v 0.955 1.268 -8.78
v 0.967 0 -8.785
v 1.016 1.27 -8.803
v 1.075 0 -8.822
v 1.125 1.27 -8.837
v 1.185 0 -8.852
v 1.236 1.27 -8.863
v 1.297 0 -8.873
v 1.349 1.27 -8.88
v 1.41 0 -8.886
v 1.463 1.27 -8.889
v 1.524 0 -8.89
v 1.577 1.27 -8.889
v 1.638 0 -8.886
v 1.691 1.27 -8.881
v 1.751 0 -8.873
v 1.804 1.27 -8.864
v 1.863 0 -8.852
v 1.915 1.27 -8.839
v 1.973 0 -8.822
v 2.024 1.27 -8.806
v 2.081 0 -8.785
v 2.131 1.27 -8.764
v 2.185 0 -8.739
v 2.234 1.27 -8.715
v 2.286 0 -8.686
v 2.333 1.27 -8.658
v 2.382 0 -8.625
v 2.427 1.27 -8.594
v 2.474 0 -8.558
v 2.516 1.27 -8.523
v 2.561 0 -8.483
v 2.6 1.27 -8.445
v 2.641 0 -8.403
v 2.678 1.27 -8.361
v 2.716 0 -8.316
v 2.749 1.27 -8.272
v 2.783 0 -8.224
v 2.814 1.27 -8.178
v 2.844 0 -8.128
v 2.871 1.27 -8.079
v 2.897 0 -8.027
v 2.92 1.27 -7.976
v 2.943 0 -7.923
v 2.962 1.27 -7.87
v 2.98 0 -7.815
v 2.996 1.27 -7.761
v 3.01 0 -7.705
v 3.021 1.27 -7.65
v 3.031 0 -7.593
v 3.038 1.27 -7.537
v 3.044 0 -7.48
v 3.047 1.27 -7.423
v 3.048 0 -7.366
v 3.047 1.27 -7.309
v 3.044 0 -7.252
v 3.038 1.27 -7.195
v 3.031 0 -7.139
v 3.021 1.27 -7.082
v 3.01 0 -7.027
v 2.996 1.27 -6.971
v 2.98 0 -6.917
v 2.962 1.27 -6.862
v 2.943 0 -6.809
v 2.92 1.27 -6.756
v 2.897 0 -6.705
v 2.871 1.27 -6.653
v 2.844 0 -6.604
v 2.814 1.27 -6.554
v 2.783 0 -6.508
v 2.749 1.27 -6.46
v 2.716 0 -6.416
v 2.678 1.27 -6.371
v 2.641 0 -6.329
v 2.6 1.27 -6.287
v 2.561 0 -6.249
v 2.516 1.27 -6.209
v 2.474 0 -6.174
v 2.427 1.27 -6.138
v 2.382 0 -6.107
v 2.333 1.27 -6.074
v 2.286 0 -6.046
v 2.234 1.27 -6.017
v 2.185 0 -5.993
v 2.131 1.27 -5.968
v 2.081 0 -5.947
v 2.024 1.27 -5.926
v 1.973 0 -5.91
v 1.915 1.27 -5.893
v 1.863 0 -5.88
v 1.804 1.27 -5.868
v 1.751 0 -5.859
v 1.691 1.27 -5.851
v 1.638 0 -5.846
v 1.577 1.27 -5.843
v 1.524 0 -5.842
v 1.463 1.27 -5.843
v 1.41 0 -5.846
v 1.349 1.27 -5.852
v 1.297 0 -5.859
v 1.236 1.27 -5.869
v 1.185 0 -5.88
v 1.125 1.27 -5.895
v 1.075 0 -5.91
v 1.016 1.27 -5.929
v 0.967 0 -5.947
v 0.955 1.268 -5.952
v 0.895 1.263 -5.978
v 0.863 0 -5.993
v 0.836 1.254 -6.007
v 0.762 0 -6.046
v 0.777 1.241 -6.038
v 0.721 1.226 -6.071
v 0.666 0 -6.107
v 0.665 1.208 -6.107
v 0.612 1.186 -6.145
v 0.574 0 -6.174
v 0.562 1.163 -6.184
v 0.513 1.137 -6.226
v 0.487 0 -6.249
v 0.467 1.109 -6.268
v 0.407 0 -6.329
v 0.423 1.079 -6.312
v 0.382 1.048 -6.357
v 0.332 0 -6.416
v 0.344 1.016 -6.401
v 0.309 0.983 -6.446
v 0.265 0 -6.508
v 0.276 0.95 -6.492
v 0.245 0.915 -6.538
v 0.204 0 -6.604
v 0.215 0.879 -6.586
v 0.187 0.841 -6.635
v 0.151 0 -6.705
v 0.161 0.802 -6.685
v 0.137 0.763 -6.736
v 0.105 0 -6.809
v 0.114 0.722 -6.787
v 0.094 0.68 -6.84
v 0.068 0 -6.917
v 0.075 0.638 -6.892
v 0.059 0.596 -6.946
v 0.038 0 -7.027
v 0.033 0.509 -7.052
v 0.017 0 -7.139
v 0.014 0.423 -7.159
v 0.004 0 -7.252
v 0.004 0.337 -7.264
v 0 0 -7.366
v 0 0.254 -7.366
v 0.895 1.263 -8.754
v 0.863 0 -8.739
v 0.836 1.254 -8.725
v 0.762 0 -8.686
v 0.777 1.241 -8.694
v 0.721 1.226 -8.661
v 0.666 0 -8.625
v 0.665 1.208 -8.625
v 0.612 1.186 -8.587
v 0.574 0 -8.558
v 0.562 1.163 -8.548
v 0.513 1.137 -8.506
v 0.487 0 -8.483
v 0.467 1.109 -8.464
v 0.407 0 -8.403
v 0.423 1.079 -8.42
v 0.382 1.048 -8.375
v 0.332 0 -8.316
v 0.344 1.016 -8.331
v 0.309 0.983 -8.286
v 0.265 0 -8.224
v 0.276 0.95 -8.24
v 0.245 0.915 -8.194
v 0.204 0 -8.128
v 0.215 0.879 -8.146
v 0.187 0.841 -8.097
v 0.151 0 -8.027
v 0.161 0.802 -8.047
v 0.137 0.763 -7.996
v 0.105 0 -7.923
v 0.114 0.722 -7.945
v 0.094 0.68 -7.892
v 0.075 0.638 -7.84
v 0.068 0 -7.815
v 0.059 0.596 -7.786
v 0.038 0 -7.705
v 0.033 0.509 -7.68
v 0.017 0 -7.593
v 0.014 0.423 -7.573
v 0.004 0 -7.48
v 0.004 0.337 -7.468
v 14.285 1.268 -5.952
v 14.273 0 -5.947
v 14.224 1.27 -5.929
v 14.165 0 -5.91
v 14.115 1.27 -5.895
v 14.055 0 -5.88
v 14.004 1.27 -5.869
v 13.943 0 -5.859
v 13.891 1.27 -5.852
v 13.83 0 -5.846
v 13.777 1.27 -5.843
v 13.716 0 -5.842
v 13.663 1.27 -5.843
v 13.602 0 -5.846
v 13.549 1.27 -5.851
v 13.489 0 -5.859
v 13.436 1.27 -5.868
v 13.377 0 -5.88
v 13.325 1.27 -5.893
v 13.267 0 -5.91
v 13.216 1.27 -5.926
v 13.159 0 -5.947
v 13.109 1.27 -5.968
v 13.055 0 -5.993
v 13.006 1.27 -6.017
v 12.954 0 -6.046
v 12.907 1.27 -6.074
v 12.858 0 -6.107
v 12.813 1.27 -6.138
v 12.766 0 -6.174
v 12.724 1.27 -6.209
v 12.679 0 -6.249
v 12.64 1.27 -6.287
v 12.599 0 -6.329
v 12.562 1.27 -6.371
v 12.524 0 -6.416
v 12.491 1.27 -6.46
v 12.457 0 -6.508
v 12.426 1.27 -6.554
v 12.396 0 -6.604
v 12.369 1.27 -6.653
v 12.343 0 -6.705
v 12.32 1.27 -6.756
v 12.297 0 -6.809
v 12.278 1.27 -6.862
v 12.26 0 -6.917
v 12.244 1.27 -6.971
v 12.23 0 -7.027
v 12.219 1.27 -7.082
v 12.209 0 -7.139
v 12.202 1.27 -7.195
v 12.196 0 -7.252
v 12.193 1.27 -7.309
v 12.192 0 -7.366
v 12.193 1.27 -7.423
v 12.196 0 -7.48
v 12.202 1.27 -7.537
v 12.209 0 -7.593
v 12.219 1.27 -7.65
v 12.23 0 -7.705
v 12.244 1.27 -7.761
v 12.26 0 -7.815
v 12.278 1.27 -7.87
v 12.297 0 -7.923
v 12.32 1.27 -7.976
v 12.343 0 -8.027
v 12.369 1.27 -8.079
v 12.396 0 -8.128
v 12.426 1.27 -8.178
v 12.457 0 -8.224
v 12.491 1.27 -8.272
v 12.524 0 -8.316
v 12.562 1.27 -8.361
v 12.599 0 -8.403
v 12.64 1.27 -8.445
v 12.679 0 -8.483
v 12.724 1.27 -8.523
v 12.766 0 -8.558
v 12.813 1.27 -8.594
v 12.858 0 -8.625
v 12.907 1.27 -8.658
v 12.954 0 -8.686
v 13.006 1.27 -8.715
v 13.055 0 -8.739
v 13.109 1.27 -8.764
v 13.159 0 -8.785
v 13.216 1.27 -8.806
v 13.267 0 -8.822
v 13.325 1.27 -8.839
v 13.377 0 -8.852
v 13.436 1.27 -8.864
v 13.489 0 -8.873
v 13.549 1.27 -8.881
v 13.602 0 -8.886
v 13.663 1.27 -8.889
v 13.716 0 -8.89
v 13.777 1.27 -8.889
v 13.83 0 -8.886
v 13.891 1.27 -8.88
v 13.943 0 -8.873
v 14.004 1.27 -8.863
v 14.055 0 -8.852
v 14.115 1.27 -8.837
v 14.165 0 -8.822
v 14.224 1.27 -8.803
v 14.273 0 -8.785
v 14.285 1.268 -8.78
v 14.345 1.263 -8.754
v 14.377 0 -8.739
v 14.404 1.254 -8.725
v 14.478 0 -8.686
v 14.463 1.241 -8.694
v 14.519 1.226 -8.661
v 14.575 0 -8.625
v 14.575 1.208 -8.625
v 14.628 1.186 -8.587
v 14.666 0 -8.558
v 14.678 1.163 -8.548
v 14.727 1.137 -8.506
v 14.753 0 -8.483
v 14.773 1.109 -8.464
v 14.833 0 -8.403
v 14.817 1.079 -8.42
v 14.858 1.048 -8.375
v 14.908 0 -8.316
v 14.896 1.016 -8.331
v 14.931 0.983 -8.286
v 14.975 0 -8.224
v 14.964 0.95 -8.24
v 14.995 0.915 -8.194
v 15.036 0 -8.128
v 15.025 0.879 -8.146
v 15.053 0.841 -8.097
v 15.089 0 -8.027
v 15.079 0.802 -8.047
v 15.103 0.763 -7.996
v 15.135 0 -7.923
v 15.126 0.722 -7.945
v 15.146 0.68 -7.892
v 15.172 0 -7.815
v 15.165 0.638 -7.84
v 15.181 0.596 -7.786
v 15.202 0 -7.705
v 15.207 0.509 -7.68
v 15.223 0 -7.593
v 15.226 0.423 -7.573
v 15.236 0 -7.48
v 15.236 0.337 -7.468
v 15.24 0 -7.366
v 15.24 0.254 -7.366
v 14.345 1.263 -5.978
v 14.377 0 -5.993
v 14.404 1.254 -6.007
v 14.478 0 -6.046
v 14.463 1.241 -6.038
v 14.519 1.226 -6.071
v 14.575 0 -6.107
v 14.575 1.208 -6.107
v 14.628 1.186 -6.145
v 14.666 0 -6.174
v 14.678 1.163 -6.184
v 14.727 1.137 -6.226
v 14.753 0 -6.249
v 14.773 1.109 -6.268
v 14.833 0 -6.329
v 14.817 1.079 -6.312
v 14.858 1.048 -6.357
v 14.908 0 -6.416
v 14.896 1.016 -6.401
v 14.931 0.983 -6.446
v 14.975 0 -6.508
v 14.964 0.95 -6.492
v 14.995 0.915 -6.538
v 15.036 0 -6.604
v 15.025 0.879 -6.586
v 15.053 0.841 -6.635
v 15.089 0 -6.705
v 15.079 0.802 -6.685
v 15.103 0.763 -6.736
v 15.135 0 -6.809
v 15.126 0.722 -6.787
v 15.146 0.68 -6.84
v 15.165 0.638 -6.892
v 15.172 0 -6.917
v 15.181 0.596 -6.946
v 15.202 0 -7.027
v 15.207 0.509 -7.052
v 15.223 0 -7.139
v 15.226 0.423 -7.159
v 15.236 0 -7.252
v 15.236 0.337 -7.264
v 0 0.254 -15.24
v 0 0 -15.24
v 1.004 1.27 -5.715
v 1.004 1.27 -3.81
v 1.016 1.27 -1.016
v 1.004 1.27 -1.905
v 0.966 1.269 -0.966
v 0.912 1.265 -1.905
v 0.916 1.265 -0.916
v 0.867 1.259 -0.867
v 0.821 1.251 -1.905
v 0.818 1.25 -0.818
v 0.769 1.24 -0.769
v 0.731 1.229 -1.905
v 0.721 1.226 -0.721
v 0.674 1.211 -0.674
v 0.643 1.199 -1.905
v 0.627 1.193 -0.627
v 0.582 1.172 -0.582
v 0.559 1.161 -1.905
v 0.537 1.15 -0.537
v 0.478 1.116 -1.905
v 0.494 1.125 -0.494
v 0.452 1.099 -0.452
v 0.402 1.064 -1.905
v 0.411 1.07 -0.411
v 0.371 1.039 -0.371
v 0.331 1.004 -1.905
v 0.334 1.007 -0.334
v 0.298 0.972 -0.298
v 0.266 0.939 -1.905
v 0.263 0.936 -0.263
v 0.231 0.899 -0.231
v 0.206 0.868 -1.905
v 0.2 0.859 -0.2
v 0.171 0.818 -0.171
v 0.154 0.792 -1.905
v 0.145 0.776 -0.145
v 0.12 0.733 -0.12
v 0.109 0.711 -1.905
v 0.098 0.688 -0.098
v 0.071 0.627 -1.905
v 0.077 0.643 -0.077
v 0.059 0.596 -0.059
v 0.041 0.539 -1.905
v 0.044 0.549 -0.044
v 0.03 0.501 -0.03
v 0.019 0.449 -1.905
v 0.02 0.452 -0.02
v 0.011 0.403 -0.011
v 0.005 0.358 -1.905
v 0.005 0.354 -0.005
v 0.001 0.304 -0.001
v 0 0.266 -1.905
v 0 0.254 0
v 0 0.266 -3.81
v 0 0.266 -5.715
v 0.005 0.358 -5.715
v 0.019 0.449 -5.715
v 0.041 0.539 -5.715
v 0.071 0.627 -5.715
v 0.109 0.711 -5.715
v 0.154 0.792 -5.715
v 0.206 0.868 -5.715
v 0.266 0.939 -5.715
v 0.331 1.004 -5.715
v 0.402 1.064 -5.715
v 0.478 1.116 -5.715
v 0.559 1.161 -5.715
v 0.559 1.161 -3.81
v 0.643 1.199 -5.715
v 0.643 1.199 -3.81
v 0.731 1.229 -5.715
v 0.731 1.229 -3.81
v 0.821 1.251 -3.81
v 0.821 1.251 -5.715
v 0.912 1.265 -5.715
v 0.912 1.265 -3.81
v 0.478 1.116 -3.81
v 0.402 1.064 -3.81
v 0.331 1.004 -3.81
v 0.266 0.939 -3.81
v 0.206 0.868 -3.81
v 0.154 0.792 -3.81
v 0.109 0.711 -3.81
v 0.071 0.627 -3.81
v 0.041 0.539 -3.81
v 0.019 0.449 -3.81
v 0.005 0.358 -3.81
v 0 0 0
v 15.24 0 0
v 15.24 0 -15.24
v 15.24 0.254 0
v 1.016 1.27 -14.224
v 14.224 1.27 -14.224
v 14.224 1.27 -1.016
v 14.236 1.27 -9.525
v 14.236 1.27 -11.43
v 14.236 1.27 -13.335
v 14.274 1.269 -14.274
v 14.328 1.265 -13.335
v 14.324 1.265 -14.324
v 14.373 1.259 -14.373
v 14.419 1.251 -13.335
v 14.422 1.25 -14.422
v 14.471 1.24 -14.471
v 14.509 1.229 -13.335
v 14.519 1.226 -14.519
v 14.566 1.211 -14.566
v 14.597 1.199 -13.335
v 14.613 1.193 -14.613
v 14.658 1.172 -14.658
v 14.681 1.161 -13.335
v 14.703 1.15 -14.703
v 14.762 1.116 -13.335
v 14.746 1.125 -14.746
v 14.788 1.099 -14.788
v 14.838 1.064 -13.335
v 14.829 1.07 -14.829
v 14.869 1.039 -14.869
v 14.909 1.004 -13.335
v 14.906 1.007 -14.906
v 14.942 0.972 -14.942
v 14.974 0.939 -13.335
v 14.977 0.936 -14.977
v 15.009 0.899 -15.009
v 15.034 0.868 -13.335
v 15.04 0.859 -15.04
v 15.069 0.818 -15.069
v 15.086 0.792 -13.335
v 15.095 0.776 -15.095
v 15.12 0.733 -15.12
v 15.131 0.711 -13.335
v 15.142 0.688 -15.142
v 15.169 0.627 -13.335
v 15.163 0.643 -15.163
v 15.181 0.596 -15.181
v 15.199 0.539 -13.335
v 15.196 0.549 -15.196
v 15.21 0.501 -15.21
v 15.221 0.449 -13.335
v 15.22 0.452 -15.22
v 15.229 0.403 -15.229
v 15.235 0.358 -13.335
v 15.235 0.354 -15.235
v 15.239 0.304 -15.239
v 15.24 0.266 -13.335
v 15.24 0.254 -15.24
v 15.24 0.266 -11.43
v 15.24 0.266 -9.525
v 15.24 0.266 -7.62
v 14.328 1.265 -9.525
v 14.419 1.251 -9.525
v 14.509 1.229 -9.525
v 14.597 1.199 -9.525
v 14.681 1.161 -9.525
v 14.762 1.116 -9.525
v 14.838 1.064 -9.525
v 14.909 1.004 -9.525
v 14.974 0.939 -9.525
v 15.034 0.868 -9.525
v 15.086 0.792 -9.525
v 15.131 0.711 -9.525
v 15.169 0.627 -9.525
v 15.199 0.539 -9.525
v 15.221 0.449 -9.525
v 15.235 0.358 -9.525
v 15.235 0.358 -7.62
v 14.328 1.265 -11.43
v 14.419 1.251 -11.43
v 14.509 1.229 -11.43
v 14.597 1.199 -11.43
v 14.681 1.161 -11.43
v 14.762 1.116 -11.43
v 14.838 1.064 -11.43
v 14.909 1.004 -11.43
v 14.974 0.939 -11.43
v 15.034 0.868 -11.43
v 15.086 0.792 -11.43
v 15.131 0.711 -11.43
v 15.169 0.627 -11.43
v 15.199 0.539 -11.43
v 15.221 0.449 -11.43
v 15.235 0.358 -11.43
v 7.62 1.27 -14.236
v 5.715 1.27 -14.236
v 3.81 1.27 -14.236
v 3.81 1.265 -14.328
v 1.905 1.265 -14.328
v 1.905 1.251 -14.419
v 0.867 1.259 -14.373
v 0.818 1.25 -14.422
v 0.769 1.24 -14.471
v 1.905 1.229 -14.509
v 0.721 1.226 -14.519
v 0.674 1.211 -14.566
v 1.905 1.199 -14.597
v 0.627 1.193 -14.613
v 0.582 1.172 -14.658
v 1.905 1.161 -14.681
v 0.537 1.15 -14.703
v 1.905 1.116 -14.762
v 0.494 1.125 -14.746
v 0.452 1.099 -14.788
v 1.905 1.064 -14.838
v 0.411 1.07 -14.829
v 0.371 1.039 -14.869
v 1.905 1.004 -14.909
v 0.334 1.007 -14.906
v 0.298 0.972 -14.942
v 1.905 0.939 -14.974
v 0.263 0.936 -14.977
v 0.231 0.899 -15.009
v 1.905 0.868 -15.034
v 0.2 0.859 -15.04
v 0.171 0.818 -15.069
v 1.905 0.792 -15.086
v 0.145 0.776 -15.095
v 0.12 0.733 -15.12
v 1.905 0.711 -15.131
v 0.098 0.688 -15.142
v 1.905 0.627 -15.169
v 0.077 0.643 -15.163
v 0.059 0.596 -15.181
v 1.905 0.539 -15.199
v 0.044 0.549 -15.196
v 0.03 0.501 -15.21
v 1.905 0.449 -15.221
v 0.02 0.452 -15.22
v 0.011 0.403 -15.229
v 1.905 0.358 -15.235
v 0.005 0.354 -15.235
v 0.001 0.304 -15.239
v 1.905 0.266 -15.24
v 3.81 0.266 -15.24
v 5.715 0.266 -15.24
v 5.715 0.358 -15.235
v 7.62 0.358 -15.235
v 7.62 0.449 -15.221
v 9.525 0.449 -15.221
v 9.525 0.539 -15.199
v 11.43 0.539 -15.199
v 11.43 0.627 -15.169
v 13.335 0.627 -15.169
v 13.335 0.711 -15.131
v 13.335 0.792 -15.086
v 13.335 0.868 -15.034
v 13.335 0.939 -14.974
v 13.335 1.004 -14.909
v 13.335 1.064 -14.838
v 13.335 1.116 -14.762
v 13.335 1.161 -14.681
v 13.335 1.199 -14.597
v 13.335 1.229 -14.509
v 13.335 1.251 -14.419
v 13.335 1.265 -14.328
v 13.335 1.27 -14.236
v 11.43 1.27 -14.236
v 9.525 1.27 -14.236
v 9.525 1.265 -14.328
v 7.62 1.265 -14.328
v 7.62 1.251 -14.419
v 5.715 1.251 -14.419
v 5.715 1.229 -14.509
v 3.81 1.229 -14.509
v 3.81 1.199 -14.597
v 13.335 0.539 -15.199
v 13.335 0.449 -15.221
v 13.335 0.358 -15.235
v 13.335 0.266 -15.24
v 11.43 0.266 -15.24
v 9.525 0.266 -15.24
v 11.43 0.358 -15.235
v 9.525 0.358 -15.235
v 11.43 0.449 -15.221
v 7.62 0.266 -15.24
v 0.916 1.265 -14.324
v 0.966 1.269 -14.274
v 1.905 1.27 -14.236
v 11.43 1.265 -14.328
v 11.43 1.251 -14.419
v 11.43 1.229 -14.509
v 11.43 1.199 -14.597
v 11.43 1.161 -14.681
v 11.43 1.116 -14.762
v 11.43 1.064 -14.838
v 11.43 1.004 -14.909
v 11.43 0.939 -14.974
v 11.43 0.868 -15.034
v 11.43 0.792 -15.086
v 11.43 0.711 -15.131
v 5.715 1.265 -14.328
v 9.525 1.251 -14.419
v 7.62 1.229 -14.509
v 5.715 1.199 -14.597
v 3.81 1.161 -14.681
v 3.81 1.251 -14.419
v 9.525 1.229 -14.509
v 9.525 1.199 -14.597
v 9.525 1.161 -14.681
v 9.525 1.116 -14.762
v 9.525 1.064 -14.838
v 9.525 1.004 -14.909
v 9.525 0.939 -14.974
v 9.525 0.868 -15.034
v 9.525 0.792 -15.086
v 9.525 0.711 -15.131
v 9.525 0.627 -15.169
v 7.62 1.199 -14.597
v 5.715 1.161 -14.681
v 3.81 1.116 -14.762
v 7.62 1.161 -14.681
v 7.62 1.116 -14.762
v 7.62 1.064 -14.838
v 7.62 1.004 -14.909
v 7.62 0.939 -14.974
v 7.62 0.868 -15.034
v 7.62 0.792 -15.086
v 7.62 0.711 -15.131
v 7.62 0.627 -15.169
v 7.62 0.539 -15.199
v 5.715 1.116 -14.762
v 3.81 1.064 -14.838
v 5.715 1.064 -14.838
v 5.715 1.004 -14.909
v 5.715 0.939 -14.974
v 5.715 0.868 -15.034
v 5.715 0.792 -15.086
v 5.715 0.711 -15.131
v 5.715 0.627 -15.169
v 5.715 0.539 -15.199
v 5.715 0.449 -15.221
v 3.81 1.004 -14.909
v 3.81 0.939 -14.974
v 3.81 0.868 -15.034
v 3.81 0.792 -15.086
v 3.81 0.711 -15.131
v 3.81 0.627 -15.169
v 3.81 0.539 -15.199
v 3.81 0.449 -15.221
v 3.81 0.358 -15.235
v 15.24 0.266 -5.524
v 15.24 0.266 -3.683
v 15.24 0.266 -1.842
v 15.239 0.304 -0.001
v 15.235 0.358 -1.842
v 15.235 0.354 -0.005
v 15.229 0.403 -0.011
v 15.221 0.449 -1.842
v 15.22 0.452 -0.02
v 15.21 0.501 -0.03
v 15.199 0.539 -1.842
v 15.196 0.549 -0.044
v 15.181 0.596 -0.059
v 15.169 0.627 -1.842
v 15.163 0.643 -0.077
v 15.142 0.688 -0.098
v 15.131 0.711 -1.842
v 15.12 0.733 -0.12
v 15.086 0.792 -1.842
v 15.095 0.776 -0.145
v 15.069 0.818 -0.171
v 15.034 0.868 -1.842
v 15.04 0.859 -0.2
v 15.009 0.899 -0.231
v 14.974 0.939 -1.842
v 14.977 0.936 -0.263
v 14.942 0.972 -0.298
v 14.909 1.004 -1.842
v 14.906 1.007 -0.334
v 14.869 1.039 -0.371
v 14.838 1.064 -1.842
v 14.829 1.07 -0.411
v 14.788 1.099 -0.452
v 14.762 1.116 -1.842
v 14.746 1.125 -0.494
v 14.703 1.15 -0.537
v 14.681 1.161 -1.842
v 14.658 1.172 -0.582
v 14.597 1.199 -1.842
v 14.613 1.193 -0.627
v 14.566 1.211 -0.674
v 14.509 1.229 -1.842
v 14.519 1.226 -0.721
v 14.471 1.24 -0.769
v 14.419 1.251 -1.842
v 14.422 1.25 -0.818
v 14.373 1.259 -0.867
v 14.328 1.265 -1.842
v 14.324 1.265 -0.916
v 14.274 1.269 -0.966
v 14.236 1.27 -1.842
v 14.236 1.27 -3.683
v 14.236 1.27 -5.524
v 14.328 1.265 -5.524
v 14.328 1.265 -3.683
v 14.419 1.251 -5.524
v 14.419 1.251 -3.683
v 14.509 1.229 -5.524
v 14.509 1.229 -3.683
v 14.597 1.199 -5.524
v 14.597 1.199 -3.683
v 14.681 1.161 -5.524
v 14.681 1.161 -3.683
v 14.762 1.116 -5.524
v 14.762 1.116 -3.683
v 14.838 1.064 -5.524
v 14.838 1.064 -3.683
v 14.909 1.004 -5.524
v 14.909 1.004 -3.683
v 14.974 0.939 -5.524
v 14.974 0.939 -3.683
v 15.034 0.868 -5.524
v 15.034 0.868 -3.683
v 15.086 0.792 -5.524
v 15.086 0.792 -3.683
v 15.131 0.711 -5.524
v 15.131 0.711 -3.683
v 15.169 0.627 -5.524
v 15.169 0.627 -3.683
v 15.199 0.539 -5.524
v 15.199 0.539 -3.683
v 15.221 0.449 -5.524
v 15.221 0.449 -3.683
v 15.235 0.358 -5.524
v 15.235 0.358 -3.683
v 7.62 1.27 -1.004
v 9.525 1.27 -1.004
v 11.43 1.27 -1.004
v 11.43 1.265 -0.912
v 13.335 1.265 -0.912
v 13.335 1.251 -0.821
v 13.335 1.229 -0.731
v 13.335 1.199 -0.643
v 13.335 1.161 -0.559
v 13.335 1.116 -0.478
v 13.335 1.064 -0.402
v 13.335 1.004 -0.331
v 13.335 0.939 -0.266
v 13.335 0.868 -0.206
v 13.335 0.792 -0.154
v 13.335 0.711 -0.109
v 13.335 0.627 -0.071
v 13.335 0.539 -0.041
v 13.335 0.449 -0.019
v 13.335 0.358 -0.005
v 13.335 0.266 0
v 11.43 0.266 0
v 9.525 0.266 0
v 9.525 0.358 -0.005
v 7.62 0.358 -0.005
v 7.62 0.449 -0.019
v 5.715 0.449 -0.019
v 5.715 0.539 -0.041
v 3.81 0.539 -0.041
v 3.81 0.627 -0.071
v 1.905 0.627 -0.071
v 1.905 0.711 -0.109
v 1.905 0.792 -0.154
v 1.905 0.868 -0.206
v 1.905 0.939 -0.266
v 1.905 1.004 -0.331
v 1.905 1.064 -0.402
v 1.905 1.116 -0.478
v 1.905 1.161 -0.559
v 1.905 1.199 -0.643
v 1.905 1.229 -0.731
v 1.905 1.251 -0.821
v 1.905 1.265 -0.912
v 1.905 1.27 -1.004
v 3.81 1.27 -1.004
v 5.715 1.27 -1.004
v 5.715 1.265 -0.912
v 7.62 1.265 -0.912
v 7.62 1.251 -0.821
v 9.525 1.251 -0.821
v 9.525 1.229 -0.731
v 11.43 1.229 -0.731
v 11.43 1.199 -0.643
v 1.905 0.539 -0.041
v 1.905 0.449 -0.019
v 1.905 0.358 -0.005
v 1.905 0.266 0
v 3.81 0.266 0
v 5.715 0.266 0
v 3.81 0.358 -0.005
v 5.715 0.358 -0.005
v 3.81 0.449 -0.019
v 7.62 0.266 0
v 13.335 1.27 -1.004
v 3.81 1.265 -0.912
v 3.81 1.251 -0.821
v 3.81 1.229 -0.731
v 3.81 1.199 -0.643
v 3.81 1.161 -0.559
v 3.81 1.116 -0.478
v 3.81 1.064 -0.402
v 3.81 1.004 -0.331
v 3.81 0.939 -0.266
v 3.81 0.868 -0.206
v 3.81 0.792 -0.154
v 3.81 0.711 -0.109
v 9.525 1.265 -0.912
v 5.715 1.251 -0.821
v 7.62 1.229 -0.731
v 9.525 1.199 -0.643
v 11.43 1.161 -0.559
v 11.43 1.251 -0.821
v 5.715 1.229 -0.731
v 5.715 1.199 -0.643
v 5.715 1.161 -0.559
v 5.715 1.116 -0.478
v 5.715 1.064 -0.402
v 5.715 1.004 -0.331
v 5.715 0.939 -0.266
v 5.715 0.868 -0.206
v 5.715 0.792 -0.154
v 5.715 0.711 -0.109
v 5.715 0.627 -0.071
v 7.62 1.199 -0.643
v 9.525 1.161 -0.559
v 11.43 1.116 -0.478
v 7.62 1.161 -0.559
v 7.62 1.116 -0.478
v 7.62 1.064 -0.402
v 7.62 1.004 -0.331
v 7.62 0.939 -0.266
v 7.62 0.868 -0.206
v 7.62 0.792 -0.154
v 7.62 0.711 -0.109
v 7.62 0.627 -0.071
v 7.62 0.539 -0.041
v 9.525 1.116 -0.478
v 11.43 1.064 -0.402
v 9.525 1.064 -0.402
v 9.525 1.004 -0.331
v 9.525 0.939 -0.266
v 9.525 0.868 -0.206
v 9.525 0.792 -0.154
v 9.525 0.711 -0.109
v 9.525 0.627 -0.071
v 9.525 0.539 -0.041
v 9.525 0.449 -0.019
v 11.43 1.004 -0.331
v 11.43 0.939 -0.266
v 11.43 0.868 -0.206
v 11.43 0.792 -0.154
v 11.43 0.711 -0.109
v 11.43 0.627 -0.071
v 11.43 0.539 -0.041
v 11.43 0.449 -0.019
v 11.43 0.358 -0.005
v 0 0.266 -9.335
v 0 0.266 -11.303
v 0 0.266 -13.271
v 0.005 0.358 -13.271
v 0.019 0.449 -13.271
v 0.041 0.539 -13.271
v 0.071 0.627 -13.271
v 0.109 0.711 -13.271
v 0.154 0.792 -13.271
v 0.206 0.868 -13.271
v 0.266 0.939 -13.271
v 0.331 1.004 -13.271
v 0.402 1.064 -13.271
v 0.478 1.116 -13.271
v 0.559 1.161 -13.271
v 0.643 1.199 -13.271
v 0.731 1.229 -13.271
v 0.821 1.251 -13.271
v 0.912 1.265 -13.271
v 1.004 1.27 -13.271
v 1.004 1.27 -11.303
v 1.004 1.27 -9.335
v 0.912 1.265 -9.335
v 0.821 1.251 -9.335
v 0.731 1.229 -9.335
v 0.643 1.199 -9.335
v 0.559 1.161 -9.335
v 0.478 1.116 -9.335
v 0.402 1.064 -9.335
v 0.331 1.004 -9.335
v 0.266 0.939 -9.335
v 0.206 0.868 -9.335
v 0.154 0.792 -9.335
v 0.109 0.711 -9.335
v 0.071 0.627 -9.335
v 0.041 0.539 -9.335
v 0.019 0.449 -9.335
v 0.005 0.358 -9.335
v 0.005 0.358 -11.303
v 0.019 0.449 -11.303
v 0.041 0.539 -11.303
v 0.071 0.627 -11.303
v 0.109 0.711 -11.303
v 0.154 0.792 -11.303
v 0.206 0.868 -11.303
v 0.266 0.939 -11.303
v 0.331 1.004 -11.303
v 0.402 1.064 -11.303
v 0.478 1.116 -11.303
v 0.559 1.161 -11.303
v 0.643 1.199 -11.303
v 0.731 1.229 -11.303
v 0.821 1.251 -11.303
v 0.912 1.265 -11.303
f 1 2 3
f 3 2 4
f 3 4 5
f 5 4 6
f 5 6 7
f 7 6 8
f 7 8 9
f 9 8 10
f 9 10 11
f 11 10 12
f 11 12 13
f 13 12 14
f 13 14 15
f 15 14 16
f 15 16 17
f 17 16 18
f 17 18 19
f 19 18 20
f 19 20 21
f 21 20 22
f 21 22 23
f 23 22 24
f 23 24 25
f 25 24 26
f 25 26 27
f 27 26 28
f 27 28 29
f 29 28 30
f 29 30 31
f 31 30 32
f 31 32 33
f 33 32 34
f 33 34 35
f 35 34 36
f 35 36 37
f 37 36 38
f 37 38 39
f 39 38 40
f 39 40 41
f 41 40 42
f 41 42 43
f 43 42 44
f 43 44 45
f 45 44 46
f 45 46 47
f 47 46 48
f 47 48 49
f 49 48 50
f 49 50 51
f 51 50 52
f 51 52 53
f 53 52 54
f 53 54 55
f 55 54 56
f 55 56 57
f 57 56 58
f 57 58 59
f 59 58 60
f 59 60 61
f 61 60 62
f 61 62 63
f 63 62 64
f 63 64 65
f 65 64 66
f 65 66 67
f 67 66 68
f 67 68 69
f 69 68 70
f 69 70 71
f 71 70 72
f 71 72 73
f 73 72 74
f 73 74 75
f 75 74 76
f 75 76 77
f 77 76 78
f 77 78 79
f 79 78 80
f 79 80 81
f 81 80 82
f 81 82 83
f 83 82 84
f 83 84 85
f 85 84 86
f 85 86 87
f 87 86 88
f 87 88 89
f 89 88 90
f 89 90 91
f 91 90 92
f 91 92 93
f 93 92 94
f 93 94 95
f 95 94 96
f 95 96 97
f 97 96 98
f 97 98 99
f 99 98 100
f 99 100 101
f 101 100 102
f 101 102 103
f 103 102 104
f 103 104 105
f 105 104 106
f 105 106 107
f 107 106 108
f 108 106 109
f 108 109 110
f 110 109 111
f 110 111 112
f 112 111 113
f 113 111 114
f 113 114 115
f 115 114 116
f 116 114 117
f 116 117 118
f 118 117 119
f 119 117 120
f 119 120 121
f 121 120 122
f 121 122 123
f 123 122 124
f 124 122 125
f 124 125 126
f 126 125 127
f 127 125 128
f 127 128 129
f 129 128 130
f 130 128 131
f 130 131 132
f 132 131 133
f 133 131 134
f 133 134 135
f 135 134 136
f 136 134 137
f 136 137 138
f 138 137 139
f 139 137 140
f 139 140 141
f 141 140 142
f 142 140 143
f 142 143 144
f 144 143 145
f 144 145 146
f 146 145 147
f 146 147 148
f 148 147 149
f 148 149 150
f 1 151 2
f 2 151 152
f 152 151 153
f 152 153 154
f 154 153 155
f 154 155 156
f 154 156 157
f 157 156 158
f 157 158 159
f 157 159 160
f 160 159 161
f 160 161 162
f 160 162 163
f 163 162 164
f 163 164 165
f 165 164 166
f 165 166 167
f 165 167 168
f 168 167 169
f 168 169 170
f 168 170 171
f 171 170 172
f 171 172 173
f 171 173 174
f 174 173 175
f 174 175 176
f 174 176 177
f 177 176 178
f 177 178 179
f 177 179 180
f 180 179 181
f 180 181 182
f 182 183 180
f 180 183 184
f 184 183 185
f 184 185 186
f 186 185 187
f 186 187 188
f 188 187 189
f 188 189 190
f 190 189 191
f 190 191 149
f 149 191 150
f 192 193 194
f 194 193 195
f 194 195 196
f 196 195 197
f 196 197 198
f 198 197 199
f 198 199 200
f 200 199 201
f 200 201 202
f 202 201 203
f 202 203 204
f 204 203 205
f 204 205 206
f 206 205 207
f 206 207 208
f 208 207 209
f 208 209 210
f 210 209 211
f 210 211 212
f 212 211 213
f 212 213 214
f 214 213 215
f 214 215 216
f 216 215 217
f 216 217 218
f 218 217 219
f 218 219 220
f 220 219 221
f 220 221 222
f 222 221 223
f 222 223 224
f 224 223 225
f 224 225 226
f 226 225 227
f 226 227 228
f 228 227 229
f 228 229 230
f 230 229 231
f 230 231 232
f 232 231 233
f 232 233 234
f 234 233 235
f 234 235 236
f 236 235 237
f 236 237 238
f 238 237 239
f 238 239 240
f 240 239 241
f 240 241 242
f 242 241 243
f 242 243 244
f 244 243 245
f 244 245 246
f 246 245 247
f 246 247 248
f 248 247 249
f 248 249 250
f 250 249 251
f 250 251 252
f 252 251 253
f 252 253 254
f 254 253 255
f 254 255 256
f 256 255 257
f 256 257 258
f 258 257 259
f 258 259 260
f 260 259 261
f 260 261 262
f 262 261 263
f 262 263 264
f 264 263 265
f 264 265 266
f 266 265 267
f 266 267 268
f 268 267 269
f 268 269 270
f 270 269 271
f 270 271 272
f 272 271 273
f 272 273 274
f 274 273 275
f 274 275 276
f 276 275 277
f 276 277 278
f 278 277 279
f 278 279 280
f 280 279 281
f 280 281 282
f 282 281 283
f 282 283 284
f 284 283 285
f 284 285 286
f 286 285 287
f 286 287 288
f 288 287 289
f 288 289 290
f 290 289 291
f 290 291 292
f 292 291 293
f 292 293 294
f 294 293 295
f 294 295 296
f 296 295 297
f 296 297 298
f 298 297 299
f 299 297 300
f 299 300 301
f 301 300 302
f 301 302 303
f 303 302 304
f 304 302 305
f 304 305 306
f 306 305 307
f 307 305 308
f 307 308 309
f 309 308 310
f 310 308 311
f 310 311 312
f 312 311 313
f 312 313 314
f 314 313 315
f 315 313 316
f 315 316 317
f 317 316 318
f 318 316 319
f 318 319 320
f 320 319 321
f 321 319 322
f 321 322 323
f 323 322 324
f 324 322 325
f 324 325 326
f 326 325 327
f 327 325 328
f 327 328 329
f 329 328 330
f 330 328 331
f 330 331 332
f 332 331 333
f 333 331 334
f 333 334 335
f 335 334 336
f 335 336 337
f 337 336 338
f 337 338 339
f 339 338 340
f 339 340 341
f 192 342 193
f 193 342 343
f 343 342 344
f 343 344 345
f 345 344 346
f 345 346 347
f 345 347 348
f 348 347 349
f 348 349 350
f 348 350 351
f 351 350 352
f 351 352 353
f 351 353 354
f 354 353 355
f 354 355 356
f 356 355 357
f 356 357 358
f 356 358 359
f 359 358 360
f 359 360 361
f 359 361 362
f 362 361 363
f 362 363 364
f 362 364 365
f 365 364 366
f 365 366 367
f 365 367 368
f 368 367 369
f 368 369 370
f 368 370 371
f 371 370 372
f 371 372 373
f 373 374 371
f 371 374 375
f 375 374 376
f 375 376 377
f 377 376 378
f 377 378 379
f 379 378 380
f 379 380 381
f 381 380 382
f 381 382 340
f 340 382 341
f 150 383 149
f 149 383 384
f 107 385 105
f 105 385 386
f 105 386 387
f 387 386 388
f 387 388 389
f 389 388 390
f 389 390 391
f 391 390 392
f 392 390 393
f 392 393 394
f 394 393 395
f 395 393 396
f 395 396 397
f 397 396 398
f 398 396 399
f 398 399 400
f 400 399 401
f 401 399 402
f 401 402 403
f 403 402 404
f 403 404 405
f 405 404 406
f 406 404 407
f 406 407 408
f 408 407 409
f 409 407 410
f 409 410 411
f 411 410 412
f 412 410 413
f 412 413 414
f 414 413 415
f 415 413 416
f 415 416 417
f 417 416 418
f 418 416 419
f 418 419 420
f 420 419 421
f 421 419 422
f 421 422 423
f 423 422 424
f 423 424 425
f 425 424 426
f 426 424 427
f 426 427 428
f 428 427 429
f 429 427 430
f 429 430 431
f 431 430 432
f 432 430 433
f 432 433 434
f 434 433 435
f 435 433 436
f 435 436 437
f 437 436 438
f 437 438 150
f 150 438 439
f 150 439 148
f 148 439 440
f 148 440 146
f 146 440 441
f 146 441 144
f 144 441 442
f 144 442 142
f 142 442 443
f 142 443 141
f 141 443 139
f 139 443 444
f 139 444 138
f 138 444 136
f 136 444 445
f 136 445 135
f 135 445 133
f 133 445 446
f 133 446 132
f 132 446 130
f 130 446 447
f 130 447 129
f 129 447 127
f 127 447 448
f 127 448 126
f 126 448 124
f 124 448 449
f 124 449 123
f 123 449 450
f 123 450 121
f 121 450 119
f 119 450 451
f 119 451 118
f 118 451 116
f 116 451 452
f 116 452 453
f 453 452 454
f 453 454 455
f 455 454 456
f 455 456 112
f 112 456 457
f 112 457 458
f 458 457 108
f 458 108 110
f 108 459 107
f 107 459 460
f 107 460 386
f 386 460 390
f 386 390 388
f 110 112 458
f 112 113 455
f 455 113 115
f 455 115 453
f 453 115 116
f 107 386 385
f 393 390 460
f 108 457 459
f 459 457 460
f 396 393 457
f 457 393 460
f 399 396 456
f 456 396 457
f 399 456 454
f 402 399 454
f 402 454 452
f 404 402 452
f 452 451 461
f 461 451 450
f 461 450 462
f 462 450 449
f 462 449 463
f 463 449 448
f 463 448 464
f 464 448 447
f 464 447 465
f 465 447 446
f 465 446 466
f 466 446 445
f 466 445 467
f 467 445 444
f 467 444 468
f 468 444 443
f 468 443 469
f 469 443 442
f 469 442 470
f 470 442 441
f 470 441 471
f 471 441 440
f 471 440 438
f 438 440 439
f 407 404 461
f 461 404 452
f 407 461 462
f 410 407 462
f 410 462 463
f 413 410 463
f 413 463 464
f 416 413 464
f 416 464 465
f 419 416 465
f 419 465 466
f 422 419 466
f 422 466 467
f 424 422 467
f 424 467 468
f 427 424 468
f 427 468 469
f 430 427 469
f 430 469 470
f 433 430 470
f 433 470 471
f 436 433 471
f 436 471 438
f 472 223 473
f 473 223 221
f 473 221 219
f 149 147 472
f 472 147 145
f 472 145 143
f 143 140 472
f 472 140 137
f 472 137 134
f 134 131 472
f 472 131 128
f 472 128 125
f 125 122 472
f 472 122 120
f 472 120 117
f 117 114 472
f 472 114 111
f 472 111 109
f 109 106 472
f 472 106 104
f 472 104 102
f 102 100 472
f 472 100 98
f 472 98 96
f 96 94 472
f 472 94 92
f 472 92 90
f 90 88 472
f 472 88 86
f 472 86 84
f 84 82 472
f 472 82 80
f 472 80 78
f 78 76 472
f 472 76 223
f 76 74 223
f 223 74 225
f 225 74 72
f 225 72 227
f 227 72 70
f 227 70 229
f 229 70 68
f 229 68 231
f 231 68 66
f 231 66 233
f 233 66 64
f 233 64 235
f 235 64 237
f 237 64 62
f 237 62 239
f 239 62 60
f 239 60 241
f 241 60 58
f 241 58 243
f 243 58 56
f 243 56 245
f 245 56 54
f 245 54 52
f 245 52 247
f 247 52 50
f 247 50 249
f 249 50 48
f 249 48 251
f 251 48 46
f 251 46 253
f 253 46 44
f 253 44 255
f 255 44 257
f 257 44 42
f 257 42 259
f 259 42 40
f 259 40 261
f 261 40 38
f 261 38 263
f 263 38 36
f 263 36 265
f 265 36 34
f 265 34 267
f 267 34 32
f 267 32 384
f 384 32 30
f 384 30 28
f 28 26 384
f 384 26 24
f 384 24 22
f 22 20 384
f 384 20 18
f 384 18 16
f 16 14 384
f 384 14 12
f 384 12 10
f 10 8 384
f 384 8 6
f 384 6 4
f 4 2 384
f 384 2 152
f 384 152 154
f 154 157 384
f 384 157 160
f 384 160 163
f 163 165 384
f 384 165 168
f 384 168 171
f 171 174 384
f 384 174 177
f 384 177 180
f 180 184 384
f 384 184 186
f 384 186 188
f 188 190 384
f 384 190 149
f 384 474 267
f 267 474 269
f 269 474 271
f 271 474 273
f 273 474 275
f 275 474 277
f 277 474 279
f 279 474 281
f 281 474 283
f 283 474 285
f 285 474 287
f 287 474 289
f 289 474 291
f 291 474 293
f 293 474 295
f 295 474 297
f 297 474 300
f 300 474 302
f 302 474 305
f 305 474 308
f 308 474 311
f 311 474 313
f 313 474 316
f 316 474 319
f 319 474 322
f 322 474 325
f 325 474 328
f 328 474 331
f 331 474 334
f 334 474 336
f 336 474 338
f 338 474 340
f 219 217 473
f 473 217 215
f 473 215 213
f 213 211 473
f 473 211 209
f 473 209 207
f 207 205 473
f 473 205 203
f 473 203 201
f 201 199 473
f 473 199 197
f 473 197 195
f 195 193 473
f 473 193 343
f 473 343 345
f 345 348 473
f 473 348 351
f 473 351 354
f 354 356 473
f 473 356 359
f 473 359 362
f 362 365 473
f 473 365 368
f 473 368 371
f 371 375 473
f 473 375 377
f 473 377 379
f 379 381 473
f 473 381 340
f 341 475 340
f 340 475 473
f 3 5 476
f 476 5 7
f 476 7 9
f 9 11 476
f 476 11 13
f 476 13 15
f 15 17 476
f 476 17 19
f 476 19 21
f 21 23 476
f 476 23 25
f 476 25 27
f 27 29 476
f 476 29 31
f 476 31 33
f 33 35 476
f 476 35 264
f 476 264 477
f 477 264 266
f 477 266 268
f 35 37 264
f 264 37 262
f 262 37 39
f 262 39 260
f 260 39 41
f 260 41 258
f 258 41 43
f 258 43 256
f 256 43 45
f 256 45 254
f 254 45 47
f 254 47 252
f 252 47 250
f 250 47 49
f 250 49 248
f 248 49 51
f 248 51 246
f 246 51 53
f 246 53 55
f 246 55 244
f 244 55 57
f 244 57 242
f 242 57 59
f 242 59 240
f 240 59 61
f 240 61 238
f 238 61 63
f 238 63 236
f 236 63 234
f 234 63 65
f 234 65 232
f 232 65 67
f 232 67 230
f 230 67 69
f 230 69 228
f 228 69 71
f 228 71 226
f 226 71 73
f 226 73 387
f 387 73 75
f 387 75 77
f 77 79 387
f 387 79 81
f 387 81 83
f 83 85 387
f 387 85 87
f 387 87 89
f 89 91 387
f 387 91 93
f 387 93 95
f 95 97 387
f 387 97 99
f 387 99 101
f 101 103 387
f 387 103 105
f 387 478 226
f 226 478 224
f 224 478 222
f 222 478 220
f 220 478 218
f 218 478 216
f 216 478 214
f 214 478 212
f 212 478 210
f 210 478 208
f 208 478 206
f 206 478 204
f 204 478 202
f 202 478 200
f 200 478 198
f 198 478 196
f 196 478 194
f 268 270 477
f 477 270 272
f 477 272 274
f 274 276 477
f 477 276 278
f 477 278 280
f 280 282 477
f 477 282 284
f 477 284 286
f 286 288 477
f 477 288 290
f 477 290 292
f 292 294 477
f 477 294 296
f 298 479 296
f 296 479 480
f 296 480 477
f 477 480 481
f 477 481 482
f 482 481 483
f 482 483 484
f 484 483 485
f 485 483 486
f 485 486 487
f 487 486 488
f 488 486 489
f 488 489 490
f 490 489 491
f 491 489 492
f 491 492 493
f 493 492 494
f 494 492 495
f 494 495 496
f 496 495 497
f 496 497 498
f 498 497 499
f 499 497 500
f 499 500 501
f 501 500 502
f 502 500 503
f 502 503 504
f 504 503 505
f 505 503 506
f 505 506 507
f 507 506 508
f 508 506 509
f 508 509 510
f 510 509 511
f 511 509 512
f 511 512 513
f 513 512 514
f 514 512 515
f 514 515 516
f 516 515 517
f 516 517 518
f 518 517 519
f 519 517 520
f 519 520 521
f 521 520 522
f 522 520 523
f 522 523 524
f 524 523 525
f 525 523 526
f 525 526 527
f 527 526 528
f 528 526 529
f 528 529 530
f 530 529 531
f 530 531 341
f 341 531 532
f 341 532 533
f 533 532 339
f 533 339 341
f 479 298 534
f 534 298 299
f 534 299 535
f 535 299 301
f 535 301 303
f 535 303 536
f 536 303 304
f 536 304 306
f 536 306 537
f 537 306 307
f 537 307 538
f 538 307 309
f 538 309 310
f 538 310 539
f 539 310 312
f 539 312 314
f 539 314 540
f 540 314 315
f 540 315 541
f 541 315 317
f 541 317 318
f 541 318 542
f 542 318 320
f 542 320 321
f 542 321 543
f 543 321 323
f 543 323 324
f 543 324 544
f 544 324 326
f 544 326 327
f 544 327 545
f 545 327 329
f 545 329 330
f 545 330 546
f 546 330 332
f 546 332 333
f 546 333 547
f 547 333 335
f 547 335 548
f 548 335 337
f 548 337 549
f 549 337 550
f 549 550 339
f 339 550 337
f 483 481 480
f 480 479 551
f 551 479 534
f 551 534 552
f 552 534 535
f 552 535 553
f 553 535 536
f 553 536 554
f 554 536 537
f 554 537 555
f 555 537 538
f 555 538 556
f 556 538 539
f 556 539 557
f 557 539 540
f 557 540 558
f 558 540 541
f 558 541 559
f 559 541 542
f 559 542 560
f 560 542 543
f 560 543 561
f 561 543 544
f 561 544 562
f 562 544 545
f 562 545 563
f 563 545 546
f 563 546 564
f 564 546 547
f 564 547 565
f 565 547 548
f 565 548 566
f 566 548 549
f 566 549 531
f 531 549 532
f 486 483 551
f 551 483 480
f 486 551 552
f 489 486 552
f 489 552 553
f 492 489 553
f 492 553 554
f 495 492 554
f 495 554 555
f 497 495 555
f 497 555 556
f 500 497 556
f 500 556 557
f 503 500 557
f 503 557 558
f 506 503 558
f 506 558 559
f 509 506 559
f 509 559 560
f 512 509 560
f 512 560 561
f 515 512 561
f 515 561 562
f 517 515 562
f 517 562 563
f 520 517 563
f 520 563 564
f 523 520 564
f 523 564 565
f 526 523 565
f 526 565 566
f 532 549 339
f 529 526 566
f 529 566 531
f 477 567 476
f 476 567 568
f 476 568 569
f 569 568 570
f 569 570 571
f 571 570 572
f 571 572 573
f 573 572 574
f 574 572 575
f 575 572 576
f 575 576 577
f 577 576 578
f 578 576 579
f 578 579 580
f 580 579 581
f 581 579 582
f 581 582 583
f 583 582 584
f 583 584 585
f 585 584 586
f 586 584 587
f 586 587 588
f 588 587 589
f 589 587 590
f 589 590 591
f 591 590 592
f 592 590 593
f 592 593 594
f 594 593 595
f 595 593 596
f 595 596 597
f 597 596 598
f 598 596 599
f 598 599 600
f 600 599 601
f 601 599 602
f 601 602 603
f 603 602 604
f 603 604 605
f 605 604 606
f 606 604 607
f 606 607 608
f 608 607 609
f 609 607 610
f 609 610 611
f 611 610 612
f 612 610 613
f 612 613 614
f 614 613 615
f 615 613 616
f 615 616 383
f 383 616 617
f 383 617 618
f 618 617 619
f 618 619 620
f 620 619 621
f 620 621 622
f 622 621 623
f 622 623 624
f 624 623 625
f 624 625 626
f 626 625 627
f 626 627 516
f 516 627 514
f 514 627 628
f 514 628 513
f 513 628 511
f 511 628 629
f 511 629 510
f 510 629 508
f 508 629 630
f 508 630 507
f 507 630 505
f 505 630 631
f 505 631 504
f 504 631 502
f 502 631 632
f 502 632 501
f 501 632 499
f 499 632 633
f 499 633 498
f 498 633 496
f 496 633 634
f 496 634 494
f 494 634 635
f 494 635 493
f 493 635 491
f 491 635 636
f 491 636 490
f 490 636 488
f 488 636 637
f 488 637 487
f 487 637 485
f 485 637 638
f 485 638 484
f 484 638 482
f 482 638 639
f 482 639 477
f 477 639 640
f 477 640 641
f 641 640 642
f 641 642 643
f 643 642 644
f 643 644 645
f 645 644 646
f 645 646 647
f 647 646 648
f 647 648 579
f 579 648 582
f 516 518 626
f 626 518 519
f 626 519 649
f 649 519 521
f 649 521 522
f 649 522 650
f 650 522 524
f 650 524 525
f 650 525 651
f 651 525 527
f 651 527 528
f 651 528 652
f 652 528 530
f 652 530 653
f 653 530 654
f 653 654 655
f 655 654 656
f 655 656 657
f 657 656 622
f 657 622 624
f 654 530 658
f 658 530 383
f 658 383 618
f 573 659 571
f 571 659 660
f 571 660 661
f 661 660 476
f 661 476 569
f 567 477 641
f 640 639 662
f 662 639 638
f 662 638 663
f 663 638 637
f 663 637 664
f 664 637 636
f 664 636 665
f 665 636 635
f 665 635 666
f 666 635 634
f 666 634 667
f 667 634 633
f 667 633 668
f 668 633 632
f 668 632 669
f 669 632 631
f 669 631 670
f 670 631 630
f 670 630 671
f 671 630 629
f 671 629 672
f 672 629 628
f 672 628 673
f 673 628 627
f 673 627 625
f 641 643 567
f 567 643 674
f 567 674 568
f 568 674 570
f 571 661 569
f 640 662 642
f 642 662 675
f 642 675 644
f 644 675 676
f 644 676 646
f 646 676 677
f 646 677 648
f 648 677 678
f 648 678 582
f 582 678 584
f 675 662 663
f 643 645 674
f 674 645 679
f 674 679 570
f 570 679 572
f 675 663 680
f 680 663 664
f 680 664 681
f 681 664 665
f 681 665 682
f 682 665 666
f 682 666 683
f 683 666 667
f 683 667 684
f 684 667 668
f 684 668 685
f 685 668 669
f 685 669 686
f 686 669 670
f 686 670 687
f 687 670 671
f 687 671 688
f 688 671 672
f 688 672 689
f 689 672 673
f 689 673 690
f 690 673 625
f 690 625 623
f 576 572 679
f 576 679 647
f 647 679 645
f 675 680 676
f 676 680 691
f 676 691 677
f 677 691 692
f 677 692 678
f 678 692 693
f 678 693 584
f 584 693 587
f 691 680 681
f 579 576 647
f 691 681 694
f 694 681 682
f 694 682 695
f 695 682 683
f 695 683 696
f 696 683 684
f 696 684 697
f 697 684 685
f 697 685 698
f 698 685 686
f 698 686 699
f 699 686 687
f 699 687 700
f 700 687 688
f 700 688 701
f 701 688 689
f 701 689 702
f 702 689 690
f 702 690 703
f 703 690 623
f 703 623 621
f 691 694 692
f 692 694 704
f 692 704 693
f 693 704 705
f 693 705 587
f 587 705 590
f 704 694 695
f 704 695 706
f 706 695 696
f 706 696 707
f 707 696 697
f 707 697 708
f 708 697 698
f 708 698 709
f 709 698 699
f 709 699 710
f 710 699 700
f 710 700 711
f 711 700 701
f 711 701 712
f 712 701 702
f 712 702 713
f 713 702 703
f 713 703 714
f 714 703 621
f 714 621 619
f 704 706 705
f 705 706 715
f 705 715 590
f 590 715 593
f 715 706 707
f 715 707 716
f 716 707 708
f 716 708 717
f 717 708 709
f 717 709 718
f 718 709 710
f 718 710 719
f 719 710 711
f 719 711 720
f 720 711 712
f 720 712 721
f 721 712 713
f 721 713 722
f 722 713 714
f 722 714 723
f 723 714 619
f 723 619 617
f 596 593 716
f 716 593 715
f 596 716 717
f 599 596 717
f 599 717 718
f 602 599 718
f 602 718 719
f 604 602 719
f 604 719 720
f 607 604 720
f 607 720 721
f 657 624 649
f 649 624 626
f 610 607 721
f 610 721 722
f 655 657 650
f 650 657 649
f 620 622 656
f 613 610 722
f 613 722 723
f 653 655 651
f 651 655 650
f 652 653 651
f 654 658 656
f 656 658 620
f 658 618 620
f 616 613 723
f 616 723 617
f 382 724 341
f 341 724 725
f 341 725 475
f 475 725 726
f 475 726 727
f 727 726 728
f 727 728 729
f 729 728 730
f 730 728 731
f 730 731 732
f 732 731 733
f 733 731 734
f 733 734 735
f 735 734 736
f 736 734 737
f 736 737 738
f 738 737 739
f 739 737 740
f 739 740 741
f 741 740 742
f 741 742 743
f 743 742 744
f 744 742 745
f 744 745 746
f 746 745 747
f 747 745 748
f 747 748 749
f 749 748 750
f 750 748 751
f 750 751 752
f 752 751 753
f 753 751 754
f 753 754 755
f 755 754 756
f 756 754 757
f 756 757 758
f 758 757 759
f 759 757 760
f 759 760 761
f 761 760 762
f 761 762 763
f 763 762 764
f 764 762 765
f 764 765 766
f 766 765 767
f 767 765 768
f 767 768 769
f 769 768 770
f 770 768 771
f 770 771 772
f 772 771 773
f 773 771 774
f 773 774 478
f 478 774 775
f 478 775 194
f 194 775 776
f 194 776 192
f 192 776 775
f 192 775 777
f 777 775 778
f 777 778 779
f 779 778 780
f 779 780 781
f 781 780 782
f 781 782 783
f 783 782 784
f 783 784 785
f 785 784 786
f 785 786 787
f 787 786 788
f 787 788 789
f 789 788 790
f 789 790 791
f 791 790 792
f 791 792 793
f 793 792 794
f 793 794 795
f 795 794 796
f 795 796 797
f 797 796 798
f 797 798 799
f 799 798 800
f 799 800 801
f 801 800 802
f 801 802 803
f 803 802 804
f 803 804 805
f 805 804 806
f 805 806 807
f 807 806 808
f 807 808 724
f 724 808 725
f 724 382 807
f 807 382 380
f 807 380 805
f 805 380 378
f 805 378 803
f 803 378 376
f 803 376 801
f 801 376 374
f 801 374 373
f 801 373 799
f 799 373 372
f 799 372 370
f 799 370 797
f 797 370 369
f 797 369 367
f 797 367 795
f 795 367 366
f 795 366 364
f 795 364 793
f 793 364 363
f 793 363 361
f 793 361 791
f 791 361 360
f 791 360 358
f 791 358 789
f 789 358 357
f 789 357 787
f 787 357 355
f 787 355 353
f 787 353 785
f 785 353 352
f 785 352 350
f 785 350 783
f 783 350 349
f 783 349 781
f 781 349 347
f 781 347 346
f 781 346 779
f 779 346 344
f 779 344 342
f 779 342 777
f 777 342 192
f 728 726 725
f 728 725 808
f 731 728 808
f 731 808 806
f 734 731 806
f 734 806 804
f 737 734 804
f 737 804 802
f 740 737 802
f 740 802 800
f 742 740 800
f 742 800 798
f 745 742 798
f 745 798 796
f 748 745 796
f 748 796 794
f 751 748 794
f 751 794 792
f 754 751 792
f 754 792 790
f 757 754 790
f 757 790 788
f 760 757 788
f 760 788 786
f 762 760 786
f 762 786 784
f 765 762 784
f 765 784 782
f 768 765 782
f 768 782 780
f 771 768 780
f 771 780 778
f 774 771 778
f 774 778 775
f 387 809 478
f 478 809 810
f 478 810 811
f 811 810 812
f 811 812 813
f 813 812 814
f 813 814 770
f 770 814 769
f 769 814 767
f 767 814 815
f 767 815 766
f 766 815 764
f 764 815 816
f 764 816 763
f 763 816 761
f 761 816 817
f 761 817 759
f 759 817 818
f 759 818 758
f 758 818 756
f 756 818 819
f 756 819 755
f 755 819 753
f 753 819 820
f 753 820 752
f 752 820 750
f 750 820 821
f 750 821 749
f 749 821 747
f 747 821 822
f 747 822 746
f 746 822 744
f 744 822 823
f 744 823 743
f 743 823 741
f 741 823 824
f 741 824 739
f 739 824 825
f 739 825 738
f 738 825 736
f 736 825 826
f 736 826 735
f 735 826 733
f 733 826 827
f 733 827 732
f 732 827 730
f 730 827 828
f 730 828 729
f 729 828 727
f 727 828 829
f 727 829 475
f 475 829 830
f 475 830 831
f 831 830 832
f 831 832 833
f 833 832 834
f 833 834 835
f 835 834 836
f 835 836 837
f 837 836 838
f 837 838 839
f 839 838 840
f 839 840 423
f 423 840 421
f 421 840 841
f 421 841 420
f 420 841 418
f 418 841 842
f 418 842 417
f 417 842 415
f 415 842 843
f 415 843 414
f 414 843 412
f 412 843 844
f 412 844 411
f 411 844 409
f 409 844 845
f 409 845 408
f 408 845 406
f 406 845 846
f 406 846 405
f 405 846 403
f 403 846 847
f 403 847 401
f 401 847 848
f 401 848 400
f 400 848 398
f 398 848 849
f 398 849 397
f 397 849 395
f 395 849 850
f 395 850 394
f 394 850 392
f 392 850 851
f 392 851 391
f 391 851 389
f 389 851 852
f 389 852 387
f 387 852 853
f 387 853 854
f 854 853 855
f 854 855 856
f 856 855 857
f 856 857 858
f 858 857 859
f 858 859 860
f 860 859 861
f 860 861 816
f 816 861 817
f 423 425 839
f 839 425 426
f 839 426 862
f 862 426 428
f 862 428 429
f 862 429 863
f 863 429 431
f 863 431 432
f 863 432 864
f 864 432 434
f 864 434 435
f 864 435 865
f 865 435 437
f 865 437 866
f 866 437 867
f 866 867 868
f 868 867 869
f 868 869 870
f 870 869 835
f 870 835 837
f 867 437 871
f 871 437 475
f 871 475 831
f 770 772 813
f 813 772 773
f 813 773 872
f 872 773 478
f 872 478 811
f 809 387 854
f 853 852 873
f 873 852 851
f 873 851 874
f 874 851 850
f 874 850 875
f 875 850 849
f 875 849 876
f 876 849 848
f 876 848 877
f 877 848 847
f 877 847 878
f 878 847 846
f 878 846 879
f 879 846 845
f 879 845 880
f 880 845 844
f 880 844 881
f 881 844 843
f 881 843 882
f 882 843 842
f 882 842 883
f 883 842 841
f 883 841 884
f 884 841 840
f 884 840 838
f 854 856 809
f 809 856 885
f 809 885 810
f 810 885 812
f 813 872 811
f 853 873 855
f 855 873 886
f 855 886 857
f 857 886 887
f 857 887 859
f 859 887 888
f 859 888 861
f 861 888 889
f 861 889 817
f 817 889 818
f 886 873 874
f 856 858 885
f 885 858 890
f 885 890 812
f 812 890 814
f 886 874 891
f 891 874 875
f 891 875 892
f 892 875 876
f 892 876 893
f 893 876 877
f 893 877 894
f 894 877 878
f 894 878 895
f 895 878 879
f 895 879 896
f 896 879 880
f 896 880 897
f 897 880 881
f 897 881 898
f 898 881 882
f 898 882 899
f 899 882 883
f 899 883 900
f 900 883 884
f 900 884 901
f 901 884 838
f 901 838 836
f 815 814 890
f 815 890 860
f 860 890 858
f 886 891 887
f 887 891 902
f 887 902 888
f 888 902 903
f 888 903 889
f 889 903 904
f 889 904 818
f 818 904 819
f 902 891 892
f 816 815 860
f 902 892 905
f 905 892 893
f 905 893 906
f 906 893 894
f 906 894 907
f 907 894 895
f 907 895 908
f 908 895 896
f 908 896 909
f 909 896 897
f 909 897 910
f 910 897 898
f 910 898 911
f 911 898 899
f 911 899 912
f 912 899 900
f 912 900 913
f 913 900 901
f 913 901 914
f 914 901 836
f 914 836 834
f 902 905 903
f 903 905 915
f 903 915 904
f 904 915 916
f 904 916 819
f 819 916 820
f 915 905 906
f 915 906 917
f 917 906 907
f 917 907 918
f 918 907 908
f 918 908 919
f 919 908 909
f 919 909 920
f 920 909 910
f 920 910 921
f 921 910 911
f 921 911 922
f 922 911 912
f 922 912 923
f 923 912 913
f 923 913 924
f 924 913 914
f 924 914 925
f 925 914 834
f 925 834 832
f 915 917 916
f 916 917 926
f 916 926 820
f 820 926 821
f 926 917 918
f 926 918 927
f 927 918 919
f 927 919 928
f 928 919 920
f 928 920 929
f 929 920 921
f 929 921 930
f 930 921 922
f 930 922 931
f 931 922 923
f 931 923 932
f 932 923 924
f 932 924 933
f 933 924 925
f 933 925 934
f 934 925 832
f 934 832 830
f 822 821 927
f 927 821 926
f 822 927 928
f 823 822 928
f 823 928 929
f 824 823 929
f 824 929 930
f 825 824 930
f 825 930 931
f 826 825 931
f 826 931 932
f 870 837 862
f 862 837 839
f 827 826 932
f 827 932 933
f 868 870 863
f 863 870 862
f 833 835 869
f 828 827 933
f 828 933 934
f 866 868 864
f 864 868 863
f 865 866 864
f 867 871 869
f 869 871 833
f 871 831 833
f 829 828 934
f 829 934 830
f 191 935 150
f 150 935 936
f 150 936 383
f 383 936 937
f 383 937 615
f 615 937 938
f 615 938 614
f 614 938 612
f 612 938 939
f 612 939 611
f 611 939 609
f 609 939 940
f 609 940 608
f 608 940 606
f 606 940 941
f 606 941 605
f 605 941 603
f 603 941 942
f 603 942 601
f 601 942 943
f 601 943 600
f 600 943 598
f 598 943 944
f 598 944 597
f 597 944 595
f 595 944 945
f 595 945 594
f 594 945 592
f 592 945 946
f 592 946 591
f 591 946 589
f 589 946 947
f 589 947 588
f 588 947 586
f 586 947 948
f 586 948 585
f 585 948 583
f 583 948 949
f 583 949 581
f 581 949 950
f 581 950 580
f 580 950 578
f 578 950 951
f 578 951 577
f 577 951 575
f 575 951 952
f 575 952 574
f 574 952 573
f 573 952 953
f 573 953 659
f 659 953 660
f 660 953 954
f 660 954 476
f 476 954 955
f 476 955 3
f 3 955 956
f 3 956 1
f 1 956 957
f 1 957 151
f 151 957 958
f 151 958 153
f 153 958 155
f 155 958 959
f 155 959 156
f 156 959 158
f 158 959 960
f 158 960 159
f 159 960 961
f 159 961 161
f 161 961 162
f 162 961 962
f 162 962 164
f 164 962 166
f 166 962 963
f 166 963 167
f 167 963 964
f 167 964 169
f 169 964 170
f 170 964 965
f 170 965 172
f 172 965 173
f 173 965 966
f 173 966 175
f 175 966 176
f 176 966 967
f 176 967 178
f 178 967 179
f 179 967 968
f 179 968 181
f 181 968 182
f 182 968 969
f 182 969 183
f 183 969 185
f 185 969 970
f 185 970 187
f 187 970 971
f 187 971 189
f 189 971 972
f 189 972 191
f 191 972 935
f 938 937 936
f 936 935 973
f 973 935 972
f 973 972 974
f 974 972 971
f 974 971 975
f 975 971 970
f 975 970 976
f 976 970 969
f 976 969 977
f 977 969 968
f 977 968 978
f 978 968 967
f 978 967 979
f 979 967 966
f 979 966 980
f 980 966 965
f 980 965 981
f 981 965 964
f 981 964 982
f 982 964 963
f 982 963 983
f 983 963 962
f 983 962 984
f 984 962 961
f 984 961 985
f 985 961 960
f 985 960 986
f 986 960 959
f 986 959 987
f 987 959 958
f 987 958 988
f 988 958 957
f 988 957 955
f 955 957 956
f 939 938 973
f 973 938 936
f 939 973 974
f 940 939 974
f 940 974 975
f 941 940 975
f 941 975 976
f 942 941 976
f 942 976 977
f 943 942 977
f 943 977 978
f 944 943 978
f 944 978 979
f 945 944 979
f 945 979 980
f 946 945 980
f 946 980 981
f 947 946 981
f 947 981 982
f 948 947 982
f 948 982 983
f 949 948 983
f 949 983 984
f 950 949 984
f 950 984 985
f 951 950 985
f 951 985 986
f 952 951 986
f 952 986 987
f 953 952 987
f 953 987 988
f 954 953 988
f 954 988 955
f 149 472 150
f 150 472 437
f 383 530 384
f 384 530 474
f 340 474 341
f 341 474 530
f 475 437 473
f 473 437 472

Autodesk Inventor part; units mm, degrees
ref_plane "YZ Plane" through (0, 0, 0) normal (1, 0, 0) x (0, 1, 0)
ref_plane "XZ Plane" through (0, 0, 0) normal (0, 1, 0) x (-1, 0, 0)
ref_plane "XY Plane" through (0, 0, 0) normal (0, 0, 1) x (1, 0, 0)
sketch "Sketch1" plane through (0, 0, 0) normal (0, 1, 0) x (-1, 0, 0)
  line L0 (0, 0) -> (-15.24, 0)
  line L1 (-15.24, 0) -> (-15.24, -15.24)
  line L2 (-15.24, -15.24) -> (0, -15.24)
  line L3 (0, -15.24) -> (0, 0)
  dimension "d0" = 15.24
  dimension "d1" = 15.24
extrude "Extrusion1" add sketch "Sketch1" along normal blind 1.27
sketch "Sketch2" plane through (0, 1.27, 0) normal (0, 1, 0) x (1, 0, 0)
  line L0 (0, 15.24) -> (0, 0) projected
  line L1 (0, 15.24) -> (1.524, 15.24)
  line L2 (1.524, 15.24) -> (1.524, 7.366)
  line L3 (1.524, 7.366) -> (0, 7.366)
  line L4 (0, 7.366) -> (0, 15.24)
  line L5 (15.24, 0) -> (15.24, 15.24) projected
  line L6 (15.24, 15.24) -> (13.716, 15.24)
  line L7 (13.716, 15.24) -> (13.716, 7.366)
  line L8 (13.716, 7.366) -> (15.24, 7.366)
  line L9 (15.24, 7.366) -> (15.24, 15.24)
  dimension "d4" = 1.524
  dimension "d5" = 7.874
  dimension "d6" = 1.524
  dimension "d7" = 7.874
fillet "Fillet1" radius 1.016 4 edges at (7.62, 1.27, 0) (7.62, 1.27, -15.24) (15.24, 1.27, -7.62) (0, 1.27, -7.62)
hole "Hole2" at (1.524, 1.27, -7.366) at (13.716, 1.27, -7.366) direction (0, -1, 0) diameter 3.048 end through all
properties part number "Cap"
